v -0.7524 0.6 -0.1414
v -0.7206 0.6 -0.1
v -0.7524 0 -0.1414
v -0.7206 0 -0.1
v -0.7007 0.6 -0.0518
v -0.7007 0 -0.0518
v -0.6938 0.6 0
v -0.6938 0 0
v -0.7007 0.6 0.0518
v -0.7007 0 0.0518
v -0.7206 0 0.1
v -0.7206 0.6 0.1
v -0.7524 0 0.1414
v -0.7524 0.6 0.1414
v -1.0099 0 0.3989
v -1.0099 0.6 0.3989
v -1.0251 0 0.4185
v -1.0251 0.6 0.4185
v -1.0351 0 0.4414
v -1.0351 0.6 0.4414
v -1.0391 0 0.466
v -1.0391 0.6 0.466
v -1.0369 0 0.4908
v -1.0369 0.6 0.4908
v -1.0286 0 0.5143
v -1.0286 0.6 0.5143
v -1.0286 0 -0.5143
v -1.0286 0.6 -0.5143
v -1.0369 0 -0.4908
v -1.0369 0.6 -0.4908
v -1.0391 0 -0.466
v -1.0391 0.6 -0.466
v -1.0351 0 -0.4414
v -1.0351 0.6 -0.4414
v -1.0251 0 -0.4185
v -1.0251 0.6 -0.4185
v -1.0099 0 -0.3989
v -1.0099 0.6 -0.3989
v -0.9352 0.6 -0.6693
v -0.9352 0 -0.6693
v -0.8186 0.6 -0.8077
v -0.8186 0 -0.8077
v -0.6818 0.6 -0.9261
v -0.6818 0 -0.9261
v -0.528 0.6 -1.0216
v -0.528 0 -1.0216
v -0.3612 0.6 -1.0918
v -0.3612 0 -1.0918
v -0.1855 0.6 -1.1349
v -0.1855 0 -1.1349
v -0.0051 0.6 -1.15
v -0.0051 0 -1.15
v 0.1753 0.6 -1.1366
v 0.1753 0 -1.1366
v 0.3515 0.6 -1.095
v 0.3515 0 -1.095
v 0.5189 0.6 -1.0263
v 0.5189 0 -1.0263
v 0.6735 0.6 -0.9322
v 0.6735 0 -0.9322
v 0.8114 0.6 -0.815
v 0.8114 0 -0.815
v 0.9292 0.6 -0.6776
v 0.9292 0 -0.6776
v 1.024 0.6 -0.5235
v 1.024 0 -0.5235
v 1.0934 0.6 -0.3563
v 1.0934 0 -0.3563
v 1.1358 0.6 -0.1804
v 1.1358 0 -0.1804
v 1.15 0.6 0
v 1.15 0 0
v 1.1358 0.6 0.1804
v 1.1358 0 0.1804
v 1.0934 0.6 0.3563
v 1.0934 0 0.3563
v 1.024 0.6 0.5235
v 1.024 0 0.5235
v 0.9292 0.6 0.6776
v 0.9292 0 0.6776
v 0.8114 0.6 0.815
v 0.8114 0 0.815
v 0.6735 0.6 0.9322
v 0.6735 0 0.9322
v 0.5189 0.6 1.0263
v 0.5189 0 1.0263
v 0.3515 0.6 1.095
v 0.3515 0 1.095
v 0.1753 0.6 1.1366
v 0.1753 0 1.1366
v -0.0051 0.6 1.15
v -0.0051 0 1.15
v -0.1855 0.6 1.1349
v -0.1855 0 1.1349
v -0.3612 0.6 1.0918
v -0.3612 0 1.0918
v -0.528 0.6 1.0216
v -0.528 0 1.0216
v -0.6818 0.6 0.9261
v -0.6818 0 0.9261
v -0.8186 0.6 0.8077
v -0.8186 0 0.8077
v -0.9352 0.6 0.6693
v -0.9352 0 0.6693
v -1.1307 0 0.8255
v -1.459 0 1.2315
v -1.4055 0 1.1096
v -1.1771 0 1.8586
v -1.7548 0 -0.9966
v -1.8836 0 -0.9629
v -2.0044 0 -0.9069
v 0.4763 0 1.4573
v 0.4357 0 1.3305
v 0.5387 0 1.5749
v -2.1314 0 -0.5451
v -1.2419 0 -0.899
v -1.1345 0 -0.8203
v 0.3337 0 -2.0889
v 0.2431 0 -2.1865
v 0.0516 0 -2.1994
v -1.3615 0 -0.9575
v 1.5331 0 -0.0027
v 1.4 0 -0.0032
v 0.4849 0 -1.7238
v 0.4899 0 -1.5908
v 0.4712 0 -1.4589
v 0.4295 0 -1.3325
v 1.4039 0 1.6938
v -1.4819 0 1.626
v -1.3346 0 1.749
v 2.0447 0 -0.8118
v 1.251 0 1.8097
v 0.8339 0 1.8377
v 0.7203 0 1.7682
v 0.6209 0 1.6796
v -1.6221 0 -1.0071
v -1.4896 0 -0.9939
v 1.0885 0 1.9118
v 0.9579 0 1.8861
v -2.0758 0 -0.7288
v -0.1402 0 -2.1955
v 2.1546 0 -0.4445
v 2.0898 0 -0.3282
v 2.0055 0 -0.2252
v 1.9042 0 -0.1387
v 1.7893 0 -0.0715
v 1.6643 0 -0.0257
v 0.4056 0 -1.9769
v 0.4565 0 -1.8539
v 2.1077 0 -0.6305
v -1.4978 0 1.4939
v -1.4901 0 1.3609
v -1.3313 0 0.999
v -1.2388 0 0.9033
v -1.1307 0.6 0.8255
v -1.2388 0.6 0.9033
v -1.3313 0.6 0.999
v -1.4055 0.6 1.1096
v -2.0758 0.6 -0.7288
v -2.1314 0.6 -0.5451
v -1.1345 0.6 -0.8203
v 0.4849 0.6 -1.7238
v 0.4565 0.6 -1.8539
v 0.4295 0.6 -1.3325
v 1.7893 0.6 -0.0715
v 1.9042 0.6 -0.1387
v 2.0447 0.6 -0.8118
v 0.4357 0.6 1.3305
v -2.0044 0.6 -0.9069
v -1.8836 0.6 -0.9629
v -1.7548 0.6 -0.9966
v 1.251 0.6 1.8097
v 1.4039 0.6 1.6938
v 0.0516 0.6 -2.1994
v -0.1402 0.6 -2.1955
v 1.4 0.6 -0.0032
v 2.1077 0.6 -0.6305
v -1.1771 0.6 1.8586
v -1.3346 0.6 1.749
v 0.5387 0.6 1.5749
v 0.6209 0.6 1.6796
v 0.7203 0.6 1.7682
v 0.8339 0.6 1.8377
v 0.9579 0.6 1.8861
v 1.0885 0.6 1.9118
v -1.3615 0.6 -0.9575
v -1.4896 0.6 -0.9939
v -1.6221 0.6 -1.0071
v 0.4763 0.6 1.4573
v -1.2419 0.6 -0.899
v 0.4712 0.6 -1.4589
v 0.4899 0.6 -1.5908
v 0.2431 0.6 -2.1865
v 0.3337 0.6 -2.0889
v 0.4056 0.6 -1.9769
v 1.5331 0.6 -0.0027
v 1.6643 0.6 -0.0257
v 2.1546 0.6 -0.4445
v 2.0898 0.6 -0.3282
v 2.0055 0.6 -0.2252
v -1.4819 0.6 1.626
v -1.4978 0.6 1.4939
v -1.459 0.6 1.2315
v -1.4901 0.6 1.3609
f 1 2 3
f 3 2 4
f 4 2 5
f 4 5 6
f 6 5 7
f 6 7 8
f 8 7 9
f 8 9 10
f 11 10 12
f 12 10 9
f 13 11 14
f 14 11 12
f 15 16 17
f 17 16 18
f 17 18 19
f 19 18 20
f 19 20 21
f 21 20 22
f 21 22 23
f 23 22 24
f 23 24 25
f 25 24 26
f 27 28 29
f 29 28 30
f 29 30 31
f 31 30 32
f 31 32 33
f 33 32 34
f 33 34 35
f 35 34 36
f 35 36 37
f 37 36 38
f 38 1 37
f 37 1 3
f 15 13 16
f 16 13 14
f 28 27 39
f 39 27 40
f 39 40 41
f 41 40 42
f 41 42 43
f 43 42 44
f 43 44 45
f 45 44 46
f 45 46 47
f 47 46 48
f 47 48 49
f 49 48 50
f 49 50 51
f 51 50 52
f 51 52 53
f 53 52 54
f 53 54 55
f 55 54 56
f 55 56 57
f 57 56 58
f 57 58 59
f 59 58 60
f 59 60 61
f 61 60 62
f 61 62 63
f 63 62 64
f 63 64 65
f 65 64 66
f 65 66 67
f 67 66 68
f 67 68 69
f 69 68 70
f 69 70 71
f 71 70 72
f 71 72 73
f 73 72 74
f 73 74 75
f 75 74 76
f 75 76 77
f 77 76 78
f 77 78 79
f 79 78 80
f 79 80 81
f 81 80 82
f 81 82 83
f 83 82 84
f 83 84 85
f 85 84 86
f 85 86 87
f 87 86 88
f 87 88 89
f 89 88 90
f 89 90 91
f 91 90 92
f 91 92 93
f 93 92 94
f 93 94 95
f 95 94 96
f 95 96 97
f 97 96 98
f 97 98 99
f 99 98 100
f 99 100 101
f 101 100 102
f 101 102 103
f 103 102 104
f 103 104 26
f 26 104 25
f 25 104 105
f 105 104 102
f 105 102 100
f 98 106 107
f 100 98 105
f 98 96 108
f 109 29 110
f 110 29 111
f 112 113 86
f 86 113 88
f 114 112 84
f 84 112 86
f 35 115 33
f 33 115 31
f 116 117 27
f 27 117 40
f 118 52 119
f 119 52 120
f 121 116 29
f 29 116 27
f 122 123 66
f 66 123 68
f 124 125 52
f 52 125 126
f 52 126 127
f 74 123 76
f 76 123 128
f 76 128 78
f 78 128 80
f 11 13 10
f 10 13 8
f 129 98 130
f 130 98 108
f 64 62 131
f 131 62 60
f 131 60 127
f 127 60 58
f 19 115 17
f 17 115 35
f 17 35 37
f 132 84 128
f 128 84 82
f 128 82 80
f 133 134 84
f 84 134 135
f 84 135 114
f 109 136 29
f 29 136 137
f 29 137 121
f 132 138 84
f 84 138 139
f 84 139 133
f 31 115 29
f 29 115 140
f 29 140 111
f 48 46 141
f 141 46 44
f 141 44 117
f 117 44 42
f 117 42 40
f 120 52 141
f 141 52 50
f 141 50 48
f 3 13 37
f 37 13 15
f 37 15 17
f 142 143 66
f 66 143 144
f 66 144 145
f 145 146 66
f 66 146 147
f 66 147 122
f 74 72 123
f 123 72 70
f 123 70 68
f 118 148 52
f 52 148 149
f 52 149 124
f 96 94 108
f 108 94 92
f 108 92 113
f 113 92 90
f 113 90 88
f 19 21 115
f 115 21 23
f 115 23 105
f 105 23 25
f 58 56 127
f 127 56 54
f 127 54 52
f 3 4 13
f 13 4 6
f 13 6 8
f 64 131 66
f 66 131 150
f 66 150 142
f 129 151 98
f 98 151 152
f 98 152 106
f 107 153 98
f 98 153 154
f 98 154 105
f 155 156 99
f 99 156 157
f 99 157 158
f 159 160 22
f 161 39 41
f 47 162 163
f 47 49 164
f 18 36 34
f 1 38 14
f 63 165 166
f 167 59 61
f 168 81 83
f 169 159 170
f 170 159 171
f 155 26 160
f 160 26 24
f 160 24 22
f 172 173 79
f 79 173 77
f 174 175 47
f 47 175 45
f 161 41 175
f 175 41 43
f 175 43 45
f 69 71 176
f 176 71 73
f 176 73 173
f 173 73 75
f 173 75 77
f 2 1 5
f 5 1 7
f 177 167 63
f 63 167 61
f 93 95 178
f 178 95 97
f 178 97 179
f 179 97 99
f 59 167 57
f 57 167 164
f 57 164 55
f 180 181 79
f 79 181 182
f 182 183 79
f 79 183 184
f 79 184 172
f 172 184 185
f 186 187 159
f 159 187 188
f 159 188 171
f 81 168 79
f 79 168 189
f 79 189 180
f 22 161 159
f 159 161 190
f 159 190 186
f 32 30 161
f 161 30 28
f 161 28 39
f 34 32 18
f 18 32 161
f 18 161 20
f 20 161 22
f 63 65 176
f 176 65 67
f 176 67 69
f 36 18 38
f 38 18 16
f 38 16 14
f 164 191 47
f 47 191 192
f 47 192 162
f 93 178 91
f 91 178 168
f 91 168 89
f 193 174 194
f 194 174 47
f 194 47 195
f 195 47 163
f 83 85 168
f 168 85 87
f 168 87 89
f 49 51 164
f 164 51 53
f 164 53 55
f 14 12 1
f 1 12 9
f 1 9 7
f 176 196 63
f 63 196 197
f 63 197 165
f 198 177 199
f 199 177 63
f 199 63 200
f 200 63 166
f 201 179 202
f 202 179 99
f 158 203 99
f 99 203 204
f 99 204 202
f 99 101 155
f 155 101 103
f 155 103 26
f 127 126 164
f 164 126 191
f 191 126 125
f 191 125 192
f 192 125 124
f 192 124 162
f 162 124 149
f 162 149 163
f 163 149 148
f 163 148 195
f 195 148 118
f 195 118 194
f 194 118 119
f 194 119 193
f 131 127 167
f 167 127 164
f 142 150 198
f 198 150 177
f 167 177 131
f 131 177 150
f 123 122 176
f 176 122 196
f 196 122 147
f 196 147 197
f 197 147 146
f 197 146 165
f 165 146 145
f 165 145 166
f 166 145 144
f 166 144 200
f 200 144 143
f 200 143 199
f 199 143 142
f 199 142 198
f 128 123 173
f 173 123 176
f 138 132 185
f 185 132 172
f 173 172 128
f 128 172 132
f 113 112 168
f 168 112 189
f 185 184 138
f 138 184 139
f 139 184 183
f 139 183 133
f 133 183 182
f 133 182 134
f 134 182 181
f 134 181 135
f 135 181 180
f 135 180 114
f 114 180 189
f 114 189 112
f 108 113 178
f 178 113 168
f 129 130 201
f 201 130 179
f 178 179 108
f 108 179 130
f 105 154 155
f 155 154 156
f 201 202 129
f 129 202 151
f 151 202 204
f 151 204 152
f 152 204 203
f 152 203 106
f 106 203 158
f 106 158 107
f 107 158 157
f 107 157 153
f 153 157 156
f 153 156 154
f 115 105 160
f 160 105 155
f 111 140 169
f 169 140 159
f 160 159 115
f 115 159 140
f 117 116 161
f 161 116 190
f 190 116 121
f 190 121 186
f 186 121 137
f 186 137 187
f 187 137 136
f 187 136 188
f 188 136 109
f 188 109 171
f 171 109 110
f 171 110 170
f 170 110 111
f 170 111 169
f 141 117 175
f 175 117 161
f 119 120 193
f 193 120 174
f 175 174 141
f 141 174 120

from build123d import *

# Parameters (mm, degrees)
BOSS_EXTRUDE1_DEPTH = 0.6
CUT_EXTRUDE1_REACH  = 2.6
FILLET1_R           = 0.1
FILLET2_R           = 0.2


with BuildPart() as part:
    # Sketch1 → Boss-Extrude1 (new body)
    with BuildSketch(Plane(origin=(0, 0, 0), x_dir=(1, 0, 0), z_dir=(0, 1, 0))):
        with BuildLine():
            Line((-1.130713076, -0.825522828), (-2.131397859, 0.545108401))
            ThreePointArc((-2.131397859, 0.545108401), (-2.07578756, 0.7287702), (-2.004384052, 0.906887298))
            ThreePointArc((-2.004384052, 0.906887298), (-1.555532522, 1.003410855), (-1.134528421, 0.820271456))
            Line((-1.134528421, 0.820271456), (-0.140209263, 2.195527582))
            ThreePointArc((-0.140209263, 2.195527582), (0.051648015, 2.199393662), (0.243112339, 2.186526101))
            ThreePointArc((0.243112339, 2.186526101), (0.473614448, 1.789470348), (0.42953595, 1.332478468))
            Line((0.42953595, 1.332478468), (2.044743768, 0.811802268))
            ThreePointArc((2.044743768, 0.811802268), (2.107707789, 0.630529838), (2.154635741, 0.444460149))
            ThreePointArc((2.154635741, 0.444460149), (1.848242349, 0.102542642), (1.399996238, 0.003245527))
            Line((1.399996238, 0.003245527), (1.40393041, -1.693806188))
            ThreePointArc((1.40393041, -1.693806188), (1.250987037, -1.809704792), (1.088525782, -1.911834622))
            ThreePointArc((1.088525782, -1.911834622), (0.668662143, -1.726095511), (0.435709309, -1.330472622))
            Line((0.435709309, -1.330472622), (-1.177067057, -1.858632063))
            ThreePointArc((-1.177067057, -1.858632063), (-1.33455528, -1.748988909), (-1.48188981, -1.626038927))
            ThreePointArc((-1.48188981, -1.626038927), (-1.434986417, -1.169328335), (-1.130713076, -0.825522828))
        make_face()
    extrude(amount=BOSS_EXTRUDE1_DEPTH)

    # Sketch2 → Cut-Extrude1 (cut, up to next)
    with BuildSketch(Plane(origin=(0, 0.6, 0), x_dir=(1, 0, 0), z_dir=(0, 1, 0)), mode=Mode.PRIVATE) as cut_extrude1_sk1:
        with BuildLine():
            Line((-1.059104505, 0.448104505), (-0.611, 0))
            Line((-0.611, 0), (-1.059104505, -0.448104505))
            ThreePointArc((-1.059104505, -0.448104505), (1.15, 0), (-1.059104505, 0.448104505))
        make_face()
    cut_extrude1_tool1 = extrude(cut_extrude1_sk1.sketch, amount=-CUT_EXTRUDE1_REACH, mode=Mode.PRIVATE) & part.part
    add(cut_extrude1_tool1.solids().sort_by_distance((0.062233, 0.6, 0))[0], mode=Mode.SUBTRACT)

    # Fillet1
    fillet1_edges = [part.edges().sort_by_distance(p)[0] for p in [
        (-1.059104505, 0.3, -0.448104505),
        (-1.059104505, 0.3, 0.448104505),
    ]]
    fillet(fillet1_edges, radius=FILLET1_R)

    # Fillet2
    fillet2_edges = [part.edges().sort_by_distance(p)[0] for p in [
        (-0.611, 0.3, 0),
    ]]
    fillet(fillet2_edges, radius=FILLET2_R)


solid = part.part
